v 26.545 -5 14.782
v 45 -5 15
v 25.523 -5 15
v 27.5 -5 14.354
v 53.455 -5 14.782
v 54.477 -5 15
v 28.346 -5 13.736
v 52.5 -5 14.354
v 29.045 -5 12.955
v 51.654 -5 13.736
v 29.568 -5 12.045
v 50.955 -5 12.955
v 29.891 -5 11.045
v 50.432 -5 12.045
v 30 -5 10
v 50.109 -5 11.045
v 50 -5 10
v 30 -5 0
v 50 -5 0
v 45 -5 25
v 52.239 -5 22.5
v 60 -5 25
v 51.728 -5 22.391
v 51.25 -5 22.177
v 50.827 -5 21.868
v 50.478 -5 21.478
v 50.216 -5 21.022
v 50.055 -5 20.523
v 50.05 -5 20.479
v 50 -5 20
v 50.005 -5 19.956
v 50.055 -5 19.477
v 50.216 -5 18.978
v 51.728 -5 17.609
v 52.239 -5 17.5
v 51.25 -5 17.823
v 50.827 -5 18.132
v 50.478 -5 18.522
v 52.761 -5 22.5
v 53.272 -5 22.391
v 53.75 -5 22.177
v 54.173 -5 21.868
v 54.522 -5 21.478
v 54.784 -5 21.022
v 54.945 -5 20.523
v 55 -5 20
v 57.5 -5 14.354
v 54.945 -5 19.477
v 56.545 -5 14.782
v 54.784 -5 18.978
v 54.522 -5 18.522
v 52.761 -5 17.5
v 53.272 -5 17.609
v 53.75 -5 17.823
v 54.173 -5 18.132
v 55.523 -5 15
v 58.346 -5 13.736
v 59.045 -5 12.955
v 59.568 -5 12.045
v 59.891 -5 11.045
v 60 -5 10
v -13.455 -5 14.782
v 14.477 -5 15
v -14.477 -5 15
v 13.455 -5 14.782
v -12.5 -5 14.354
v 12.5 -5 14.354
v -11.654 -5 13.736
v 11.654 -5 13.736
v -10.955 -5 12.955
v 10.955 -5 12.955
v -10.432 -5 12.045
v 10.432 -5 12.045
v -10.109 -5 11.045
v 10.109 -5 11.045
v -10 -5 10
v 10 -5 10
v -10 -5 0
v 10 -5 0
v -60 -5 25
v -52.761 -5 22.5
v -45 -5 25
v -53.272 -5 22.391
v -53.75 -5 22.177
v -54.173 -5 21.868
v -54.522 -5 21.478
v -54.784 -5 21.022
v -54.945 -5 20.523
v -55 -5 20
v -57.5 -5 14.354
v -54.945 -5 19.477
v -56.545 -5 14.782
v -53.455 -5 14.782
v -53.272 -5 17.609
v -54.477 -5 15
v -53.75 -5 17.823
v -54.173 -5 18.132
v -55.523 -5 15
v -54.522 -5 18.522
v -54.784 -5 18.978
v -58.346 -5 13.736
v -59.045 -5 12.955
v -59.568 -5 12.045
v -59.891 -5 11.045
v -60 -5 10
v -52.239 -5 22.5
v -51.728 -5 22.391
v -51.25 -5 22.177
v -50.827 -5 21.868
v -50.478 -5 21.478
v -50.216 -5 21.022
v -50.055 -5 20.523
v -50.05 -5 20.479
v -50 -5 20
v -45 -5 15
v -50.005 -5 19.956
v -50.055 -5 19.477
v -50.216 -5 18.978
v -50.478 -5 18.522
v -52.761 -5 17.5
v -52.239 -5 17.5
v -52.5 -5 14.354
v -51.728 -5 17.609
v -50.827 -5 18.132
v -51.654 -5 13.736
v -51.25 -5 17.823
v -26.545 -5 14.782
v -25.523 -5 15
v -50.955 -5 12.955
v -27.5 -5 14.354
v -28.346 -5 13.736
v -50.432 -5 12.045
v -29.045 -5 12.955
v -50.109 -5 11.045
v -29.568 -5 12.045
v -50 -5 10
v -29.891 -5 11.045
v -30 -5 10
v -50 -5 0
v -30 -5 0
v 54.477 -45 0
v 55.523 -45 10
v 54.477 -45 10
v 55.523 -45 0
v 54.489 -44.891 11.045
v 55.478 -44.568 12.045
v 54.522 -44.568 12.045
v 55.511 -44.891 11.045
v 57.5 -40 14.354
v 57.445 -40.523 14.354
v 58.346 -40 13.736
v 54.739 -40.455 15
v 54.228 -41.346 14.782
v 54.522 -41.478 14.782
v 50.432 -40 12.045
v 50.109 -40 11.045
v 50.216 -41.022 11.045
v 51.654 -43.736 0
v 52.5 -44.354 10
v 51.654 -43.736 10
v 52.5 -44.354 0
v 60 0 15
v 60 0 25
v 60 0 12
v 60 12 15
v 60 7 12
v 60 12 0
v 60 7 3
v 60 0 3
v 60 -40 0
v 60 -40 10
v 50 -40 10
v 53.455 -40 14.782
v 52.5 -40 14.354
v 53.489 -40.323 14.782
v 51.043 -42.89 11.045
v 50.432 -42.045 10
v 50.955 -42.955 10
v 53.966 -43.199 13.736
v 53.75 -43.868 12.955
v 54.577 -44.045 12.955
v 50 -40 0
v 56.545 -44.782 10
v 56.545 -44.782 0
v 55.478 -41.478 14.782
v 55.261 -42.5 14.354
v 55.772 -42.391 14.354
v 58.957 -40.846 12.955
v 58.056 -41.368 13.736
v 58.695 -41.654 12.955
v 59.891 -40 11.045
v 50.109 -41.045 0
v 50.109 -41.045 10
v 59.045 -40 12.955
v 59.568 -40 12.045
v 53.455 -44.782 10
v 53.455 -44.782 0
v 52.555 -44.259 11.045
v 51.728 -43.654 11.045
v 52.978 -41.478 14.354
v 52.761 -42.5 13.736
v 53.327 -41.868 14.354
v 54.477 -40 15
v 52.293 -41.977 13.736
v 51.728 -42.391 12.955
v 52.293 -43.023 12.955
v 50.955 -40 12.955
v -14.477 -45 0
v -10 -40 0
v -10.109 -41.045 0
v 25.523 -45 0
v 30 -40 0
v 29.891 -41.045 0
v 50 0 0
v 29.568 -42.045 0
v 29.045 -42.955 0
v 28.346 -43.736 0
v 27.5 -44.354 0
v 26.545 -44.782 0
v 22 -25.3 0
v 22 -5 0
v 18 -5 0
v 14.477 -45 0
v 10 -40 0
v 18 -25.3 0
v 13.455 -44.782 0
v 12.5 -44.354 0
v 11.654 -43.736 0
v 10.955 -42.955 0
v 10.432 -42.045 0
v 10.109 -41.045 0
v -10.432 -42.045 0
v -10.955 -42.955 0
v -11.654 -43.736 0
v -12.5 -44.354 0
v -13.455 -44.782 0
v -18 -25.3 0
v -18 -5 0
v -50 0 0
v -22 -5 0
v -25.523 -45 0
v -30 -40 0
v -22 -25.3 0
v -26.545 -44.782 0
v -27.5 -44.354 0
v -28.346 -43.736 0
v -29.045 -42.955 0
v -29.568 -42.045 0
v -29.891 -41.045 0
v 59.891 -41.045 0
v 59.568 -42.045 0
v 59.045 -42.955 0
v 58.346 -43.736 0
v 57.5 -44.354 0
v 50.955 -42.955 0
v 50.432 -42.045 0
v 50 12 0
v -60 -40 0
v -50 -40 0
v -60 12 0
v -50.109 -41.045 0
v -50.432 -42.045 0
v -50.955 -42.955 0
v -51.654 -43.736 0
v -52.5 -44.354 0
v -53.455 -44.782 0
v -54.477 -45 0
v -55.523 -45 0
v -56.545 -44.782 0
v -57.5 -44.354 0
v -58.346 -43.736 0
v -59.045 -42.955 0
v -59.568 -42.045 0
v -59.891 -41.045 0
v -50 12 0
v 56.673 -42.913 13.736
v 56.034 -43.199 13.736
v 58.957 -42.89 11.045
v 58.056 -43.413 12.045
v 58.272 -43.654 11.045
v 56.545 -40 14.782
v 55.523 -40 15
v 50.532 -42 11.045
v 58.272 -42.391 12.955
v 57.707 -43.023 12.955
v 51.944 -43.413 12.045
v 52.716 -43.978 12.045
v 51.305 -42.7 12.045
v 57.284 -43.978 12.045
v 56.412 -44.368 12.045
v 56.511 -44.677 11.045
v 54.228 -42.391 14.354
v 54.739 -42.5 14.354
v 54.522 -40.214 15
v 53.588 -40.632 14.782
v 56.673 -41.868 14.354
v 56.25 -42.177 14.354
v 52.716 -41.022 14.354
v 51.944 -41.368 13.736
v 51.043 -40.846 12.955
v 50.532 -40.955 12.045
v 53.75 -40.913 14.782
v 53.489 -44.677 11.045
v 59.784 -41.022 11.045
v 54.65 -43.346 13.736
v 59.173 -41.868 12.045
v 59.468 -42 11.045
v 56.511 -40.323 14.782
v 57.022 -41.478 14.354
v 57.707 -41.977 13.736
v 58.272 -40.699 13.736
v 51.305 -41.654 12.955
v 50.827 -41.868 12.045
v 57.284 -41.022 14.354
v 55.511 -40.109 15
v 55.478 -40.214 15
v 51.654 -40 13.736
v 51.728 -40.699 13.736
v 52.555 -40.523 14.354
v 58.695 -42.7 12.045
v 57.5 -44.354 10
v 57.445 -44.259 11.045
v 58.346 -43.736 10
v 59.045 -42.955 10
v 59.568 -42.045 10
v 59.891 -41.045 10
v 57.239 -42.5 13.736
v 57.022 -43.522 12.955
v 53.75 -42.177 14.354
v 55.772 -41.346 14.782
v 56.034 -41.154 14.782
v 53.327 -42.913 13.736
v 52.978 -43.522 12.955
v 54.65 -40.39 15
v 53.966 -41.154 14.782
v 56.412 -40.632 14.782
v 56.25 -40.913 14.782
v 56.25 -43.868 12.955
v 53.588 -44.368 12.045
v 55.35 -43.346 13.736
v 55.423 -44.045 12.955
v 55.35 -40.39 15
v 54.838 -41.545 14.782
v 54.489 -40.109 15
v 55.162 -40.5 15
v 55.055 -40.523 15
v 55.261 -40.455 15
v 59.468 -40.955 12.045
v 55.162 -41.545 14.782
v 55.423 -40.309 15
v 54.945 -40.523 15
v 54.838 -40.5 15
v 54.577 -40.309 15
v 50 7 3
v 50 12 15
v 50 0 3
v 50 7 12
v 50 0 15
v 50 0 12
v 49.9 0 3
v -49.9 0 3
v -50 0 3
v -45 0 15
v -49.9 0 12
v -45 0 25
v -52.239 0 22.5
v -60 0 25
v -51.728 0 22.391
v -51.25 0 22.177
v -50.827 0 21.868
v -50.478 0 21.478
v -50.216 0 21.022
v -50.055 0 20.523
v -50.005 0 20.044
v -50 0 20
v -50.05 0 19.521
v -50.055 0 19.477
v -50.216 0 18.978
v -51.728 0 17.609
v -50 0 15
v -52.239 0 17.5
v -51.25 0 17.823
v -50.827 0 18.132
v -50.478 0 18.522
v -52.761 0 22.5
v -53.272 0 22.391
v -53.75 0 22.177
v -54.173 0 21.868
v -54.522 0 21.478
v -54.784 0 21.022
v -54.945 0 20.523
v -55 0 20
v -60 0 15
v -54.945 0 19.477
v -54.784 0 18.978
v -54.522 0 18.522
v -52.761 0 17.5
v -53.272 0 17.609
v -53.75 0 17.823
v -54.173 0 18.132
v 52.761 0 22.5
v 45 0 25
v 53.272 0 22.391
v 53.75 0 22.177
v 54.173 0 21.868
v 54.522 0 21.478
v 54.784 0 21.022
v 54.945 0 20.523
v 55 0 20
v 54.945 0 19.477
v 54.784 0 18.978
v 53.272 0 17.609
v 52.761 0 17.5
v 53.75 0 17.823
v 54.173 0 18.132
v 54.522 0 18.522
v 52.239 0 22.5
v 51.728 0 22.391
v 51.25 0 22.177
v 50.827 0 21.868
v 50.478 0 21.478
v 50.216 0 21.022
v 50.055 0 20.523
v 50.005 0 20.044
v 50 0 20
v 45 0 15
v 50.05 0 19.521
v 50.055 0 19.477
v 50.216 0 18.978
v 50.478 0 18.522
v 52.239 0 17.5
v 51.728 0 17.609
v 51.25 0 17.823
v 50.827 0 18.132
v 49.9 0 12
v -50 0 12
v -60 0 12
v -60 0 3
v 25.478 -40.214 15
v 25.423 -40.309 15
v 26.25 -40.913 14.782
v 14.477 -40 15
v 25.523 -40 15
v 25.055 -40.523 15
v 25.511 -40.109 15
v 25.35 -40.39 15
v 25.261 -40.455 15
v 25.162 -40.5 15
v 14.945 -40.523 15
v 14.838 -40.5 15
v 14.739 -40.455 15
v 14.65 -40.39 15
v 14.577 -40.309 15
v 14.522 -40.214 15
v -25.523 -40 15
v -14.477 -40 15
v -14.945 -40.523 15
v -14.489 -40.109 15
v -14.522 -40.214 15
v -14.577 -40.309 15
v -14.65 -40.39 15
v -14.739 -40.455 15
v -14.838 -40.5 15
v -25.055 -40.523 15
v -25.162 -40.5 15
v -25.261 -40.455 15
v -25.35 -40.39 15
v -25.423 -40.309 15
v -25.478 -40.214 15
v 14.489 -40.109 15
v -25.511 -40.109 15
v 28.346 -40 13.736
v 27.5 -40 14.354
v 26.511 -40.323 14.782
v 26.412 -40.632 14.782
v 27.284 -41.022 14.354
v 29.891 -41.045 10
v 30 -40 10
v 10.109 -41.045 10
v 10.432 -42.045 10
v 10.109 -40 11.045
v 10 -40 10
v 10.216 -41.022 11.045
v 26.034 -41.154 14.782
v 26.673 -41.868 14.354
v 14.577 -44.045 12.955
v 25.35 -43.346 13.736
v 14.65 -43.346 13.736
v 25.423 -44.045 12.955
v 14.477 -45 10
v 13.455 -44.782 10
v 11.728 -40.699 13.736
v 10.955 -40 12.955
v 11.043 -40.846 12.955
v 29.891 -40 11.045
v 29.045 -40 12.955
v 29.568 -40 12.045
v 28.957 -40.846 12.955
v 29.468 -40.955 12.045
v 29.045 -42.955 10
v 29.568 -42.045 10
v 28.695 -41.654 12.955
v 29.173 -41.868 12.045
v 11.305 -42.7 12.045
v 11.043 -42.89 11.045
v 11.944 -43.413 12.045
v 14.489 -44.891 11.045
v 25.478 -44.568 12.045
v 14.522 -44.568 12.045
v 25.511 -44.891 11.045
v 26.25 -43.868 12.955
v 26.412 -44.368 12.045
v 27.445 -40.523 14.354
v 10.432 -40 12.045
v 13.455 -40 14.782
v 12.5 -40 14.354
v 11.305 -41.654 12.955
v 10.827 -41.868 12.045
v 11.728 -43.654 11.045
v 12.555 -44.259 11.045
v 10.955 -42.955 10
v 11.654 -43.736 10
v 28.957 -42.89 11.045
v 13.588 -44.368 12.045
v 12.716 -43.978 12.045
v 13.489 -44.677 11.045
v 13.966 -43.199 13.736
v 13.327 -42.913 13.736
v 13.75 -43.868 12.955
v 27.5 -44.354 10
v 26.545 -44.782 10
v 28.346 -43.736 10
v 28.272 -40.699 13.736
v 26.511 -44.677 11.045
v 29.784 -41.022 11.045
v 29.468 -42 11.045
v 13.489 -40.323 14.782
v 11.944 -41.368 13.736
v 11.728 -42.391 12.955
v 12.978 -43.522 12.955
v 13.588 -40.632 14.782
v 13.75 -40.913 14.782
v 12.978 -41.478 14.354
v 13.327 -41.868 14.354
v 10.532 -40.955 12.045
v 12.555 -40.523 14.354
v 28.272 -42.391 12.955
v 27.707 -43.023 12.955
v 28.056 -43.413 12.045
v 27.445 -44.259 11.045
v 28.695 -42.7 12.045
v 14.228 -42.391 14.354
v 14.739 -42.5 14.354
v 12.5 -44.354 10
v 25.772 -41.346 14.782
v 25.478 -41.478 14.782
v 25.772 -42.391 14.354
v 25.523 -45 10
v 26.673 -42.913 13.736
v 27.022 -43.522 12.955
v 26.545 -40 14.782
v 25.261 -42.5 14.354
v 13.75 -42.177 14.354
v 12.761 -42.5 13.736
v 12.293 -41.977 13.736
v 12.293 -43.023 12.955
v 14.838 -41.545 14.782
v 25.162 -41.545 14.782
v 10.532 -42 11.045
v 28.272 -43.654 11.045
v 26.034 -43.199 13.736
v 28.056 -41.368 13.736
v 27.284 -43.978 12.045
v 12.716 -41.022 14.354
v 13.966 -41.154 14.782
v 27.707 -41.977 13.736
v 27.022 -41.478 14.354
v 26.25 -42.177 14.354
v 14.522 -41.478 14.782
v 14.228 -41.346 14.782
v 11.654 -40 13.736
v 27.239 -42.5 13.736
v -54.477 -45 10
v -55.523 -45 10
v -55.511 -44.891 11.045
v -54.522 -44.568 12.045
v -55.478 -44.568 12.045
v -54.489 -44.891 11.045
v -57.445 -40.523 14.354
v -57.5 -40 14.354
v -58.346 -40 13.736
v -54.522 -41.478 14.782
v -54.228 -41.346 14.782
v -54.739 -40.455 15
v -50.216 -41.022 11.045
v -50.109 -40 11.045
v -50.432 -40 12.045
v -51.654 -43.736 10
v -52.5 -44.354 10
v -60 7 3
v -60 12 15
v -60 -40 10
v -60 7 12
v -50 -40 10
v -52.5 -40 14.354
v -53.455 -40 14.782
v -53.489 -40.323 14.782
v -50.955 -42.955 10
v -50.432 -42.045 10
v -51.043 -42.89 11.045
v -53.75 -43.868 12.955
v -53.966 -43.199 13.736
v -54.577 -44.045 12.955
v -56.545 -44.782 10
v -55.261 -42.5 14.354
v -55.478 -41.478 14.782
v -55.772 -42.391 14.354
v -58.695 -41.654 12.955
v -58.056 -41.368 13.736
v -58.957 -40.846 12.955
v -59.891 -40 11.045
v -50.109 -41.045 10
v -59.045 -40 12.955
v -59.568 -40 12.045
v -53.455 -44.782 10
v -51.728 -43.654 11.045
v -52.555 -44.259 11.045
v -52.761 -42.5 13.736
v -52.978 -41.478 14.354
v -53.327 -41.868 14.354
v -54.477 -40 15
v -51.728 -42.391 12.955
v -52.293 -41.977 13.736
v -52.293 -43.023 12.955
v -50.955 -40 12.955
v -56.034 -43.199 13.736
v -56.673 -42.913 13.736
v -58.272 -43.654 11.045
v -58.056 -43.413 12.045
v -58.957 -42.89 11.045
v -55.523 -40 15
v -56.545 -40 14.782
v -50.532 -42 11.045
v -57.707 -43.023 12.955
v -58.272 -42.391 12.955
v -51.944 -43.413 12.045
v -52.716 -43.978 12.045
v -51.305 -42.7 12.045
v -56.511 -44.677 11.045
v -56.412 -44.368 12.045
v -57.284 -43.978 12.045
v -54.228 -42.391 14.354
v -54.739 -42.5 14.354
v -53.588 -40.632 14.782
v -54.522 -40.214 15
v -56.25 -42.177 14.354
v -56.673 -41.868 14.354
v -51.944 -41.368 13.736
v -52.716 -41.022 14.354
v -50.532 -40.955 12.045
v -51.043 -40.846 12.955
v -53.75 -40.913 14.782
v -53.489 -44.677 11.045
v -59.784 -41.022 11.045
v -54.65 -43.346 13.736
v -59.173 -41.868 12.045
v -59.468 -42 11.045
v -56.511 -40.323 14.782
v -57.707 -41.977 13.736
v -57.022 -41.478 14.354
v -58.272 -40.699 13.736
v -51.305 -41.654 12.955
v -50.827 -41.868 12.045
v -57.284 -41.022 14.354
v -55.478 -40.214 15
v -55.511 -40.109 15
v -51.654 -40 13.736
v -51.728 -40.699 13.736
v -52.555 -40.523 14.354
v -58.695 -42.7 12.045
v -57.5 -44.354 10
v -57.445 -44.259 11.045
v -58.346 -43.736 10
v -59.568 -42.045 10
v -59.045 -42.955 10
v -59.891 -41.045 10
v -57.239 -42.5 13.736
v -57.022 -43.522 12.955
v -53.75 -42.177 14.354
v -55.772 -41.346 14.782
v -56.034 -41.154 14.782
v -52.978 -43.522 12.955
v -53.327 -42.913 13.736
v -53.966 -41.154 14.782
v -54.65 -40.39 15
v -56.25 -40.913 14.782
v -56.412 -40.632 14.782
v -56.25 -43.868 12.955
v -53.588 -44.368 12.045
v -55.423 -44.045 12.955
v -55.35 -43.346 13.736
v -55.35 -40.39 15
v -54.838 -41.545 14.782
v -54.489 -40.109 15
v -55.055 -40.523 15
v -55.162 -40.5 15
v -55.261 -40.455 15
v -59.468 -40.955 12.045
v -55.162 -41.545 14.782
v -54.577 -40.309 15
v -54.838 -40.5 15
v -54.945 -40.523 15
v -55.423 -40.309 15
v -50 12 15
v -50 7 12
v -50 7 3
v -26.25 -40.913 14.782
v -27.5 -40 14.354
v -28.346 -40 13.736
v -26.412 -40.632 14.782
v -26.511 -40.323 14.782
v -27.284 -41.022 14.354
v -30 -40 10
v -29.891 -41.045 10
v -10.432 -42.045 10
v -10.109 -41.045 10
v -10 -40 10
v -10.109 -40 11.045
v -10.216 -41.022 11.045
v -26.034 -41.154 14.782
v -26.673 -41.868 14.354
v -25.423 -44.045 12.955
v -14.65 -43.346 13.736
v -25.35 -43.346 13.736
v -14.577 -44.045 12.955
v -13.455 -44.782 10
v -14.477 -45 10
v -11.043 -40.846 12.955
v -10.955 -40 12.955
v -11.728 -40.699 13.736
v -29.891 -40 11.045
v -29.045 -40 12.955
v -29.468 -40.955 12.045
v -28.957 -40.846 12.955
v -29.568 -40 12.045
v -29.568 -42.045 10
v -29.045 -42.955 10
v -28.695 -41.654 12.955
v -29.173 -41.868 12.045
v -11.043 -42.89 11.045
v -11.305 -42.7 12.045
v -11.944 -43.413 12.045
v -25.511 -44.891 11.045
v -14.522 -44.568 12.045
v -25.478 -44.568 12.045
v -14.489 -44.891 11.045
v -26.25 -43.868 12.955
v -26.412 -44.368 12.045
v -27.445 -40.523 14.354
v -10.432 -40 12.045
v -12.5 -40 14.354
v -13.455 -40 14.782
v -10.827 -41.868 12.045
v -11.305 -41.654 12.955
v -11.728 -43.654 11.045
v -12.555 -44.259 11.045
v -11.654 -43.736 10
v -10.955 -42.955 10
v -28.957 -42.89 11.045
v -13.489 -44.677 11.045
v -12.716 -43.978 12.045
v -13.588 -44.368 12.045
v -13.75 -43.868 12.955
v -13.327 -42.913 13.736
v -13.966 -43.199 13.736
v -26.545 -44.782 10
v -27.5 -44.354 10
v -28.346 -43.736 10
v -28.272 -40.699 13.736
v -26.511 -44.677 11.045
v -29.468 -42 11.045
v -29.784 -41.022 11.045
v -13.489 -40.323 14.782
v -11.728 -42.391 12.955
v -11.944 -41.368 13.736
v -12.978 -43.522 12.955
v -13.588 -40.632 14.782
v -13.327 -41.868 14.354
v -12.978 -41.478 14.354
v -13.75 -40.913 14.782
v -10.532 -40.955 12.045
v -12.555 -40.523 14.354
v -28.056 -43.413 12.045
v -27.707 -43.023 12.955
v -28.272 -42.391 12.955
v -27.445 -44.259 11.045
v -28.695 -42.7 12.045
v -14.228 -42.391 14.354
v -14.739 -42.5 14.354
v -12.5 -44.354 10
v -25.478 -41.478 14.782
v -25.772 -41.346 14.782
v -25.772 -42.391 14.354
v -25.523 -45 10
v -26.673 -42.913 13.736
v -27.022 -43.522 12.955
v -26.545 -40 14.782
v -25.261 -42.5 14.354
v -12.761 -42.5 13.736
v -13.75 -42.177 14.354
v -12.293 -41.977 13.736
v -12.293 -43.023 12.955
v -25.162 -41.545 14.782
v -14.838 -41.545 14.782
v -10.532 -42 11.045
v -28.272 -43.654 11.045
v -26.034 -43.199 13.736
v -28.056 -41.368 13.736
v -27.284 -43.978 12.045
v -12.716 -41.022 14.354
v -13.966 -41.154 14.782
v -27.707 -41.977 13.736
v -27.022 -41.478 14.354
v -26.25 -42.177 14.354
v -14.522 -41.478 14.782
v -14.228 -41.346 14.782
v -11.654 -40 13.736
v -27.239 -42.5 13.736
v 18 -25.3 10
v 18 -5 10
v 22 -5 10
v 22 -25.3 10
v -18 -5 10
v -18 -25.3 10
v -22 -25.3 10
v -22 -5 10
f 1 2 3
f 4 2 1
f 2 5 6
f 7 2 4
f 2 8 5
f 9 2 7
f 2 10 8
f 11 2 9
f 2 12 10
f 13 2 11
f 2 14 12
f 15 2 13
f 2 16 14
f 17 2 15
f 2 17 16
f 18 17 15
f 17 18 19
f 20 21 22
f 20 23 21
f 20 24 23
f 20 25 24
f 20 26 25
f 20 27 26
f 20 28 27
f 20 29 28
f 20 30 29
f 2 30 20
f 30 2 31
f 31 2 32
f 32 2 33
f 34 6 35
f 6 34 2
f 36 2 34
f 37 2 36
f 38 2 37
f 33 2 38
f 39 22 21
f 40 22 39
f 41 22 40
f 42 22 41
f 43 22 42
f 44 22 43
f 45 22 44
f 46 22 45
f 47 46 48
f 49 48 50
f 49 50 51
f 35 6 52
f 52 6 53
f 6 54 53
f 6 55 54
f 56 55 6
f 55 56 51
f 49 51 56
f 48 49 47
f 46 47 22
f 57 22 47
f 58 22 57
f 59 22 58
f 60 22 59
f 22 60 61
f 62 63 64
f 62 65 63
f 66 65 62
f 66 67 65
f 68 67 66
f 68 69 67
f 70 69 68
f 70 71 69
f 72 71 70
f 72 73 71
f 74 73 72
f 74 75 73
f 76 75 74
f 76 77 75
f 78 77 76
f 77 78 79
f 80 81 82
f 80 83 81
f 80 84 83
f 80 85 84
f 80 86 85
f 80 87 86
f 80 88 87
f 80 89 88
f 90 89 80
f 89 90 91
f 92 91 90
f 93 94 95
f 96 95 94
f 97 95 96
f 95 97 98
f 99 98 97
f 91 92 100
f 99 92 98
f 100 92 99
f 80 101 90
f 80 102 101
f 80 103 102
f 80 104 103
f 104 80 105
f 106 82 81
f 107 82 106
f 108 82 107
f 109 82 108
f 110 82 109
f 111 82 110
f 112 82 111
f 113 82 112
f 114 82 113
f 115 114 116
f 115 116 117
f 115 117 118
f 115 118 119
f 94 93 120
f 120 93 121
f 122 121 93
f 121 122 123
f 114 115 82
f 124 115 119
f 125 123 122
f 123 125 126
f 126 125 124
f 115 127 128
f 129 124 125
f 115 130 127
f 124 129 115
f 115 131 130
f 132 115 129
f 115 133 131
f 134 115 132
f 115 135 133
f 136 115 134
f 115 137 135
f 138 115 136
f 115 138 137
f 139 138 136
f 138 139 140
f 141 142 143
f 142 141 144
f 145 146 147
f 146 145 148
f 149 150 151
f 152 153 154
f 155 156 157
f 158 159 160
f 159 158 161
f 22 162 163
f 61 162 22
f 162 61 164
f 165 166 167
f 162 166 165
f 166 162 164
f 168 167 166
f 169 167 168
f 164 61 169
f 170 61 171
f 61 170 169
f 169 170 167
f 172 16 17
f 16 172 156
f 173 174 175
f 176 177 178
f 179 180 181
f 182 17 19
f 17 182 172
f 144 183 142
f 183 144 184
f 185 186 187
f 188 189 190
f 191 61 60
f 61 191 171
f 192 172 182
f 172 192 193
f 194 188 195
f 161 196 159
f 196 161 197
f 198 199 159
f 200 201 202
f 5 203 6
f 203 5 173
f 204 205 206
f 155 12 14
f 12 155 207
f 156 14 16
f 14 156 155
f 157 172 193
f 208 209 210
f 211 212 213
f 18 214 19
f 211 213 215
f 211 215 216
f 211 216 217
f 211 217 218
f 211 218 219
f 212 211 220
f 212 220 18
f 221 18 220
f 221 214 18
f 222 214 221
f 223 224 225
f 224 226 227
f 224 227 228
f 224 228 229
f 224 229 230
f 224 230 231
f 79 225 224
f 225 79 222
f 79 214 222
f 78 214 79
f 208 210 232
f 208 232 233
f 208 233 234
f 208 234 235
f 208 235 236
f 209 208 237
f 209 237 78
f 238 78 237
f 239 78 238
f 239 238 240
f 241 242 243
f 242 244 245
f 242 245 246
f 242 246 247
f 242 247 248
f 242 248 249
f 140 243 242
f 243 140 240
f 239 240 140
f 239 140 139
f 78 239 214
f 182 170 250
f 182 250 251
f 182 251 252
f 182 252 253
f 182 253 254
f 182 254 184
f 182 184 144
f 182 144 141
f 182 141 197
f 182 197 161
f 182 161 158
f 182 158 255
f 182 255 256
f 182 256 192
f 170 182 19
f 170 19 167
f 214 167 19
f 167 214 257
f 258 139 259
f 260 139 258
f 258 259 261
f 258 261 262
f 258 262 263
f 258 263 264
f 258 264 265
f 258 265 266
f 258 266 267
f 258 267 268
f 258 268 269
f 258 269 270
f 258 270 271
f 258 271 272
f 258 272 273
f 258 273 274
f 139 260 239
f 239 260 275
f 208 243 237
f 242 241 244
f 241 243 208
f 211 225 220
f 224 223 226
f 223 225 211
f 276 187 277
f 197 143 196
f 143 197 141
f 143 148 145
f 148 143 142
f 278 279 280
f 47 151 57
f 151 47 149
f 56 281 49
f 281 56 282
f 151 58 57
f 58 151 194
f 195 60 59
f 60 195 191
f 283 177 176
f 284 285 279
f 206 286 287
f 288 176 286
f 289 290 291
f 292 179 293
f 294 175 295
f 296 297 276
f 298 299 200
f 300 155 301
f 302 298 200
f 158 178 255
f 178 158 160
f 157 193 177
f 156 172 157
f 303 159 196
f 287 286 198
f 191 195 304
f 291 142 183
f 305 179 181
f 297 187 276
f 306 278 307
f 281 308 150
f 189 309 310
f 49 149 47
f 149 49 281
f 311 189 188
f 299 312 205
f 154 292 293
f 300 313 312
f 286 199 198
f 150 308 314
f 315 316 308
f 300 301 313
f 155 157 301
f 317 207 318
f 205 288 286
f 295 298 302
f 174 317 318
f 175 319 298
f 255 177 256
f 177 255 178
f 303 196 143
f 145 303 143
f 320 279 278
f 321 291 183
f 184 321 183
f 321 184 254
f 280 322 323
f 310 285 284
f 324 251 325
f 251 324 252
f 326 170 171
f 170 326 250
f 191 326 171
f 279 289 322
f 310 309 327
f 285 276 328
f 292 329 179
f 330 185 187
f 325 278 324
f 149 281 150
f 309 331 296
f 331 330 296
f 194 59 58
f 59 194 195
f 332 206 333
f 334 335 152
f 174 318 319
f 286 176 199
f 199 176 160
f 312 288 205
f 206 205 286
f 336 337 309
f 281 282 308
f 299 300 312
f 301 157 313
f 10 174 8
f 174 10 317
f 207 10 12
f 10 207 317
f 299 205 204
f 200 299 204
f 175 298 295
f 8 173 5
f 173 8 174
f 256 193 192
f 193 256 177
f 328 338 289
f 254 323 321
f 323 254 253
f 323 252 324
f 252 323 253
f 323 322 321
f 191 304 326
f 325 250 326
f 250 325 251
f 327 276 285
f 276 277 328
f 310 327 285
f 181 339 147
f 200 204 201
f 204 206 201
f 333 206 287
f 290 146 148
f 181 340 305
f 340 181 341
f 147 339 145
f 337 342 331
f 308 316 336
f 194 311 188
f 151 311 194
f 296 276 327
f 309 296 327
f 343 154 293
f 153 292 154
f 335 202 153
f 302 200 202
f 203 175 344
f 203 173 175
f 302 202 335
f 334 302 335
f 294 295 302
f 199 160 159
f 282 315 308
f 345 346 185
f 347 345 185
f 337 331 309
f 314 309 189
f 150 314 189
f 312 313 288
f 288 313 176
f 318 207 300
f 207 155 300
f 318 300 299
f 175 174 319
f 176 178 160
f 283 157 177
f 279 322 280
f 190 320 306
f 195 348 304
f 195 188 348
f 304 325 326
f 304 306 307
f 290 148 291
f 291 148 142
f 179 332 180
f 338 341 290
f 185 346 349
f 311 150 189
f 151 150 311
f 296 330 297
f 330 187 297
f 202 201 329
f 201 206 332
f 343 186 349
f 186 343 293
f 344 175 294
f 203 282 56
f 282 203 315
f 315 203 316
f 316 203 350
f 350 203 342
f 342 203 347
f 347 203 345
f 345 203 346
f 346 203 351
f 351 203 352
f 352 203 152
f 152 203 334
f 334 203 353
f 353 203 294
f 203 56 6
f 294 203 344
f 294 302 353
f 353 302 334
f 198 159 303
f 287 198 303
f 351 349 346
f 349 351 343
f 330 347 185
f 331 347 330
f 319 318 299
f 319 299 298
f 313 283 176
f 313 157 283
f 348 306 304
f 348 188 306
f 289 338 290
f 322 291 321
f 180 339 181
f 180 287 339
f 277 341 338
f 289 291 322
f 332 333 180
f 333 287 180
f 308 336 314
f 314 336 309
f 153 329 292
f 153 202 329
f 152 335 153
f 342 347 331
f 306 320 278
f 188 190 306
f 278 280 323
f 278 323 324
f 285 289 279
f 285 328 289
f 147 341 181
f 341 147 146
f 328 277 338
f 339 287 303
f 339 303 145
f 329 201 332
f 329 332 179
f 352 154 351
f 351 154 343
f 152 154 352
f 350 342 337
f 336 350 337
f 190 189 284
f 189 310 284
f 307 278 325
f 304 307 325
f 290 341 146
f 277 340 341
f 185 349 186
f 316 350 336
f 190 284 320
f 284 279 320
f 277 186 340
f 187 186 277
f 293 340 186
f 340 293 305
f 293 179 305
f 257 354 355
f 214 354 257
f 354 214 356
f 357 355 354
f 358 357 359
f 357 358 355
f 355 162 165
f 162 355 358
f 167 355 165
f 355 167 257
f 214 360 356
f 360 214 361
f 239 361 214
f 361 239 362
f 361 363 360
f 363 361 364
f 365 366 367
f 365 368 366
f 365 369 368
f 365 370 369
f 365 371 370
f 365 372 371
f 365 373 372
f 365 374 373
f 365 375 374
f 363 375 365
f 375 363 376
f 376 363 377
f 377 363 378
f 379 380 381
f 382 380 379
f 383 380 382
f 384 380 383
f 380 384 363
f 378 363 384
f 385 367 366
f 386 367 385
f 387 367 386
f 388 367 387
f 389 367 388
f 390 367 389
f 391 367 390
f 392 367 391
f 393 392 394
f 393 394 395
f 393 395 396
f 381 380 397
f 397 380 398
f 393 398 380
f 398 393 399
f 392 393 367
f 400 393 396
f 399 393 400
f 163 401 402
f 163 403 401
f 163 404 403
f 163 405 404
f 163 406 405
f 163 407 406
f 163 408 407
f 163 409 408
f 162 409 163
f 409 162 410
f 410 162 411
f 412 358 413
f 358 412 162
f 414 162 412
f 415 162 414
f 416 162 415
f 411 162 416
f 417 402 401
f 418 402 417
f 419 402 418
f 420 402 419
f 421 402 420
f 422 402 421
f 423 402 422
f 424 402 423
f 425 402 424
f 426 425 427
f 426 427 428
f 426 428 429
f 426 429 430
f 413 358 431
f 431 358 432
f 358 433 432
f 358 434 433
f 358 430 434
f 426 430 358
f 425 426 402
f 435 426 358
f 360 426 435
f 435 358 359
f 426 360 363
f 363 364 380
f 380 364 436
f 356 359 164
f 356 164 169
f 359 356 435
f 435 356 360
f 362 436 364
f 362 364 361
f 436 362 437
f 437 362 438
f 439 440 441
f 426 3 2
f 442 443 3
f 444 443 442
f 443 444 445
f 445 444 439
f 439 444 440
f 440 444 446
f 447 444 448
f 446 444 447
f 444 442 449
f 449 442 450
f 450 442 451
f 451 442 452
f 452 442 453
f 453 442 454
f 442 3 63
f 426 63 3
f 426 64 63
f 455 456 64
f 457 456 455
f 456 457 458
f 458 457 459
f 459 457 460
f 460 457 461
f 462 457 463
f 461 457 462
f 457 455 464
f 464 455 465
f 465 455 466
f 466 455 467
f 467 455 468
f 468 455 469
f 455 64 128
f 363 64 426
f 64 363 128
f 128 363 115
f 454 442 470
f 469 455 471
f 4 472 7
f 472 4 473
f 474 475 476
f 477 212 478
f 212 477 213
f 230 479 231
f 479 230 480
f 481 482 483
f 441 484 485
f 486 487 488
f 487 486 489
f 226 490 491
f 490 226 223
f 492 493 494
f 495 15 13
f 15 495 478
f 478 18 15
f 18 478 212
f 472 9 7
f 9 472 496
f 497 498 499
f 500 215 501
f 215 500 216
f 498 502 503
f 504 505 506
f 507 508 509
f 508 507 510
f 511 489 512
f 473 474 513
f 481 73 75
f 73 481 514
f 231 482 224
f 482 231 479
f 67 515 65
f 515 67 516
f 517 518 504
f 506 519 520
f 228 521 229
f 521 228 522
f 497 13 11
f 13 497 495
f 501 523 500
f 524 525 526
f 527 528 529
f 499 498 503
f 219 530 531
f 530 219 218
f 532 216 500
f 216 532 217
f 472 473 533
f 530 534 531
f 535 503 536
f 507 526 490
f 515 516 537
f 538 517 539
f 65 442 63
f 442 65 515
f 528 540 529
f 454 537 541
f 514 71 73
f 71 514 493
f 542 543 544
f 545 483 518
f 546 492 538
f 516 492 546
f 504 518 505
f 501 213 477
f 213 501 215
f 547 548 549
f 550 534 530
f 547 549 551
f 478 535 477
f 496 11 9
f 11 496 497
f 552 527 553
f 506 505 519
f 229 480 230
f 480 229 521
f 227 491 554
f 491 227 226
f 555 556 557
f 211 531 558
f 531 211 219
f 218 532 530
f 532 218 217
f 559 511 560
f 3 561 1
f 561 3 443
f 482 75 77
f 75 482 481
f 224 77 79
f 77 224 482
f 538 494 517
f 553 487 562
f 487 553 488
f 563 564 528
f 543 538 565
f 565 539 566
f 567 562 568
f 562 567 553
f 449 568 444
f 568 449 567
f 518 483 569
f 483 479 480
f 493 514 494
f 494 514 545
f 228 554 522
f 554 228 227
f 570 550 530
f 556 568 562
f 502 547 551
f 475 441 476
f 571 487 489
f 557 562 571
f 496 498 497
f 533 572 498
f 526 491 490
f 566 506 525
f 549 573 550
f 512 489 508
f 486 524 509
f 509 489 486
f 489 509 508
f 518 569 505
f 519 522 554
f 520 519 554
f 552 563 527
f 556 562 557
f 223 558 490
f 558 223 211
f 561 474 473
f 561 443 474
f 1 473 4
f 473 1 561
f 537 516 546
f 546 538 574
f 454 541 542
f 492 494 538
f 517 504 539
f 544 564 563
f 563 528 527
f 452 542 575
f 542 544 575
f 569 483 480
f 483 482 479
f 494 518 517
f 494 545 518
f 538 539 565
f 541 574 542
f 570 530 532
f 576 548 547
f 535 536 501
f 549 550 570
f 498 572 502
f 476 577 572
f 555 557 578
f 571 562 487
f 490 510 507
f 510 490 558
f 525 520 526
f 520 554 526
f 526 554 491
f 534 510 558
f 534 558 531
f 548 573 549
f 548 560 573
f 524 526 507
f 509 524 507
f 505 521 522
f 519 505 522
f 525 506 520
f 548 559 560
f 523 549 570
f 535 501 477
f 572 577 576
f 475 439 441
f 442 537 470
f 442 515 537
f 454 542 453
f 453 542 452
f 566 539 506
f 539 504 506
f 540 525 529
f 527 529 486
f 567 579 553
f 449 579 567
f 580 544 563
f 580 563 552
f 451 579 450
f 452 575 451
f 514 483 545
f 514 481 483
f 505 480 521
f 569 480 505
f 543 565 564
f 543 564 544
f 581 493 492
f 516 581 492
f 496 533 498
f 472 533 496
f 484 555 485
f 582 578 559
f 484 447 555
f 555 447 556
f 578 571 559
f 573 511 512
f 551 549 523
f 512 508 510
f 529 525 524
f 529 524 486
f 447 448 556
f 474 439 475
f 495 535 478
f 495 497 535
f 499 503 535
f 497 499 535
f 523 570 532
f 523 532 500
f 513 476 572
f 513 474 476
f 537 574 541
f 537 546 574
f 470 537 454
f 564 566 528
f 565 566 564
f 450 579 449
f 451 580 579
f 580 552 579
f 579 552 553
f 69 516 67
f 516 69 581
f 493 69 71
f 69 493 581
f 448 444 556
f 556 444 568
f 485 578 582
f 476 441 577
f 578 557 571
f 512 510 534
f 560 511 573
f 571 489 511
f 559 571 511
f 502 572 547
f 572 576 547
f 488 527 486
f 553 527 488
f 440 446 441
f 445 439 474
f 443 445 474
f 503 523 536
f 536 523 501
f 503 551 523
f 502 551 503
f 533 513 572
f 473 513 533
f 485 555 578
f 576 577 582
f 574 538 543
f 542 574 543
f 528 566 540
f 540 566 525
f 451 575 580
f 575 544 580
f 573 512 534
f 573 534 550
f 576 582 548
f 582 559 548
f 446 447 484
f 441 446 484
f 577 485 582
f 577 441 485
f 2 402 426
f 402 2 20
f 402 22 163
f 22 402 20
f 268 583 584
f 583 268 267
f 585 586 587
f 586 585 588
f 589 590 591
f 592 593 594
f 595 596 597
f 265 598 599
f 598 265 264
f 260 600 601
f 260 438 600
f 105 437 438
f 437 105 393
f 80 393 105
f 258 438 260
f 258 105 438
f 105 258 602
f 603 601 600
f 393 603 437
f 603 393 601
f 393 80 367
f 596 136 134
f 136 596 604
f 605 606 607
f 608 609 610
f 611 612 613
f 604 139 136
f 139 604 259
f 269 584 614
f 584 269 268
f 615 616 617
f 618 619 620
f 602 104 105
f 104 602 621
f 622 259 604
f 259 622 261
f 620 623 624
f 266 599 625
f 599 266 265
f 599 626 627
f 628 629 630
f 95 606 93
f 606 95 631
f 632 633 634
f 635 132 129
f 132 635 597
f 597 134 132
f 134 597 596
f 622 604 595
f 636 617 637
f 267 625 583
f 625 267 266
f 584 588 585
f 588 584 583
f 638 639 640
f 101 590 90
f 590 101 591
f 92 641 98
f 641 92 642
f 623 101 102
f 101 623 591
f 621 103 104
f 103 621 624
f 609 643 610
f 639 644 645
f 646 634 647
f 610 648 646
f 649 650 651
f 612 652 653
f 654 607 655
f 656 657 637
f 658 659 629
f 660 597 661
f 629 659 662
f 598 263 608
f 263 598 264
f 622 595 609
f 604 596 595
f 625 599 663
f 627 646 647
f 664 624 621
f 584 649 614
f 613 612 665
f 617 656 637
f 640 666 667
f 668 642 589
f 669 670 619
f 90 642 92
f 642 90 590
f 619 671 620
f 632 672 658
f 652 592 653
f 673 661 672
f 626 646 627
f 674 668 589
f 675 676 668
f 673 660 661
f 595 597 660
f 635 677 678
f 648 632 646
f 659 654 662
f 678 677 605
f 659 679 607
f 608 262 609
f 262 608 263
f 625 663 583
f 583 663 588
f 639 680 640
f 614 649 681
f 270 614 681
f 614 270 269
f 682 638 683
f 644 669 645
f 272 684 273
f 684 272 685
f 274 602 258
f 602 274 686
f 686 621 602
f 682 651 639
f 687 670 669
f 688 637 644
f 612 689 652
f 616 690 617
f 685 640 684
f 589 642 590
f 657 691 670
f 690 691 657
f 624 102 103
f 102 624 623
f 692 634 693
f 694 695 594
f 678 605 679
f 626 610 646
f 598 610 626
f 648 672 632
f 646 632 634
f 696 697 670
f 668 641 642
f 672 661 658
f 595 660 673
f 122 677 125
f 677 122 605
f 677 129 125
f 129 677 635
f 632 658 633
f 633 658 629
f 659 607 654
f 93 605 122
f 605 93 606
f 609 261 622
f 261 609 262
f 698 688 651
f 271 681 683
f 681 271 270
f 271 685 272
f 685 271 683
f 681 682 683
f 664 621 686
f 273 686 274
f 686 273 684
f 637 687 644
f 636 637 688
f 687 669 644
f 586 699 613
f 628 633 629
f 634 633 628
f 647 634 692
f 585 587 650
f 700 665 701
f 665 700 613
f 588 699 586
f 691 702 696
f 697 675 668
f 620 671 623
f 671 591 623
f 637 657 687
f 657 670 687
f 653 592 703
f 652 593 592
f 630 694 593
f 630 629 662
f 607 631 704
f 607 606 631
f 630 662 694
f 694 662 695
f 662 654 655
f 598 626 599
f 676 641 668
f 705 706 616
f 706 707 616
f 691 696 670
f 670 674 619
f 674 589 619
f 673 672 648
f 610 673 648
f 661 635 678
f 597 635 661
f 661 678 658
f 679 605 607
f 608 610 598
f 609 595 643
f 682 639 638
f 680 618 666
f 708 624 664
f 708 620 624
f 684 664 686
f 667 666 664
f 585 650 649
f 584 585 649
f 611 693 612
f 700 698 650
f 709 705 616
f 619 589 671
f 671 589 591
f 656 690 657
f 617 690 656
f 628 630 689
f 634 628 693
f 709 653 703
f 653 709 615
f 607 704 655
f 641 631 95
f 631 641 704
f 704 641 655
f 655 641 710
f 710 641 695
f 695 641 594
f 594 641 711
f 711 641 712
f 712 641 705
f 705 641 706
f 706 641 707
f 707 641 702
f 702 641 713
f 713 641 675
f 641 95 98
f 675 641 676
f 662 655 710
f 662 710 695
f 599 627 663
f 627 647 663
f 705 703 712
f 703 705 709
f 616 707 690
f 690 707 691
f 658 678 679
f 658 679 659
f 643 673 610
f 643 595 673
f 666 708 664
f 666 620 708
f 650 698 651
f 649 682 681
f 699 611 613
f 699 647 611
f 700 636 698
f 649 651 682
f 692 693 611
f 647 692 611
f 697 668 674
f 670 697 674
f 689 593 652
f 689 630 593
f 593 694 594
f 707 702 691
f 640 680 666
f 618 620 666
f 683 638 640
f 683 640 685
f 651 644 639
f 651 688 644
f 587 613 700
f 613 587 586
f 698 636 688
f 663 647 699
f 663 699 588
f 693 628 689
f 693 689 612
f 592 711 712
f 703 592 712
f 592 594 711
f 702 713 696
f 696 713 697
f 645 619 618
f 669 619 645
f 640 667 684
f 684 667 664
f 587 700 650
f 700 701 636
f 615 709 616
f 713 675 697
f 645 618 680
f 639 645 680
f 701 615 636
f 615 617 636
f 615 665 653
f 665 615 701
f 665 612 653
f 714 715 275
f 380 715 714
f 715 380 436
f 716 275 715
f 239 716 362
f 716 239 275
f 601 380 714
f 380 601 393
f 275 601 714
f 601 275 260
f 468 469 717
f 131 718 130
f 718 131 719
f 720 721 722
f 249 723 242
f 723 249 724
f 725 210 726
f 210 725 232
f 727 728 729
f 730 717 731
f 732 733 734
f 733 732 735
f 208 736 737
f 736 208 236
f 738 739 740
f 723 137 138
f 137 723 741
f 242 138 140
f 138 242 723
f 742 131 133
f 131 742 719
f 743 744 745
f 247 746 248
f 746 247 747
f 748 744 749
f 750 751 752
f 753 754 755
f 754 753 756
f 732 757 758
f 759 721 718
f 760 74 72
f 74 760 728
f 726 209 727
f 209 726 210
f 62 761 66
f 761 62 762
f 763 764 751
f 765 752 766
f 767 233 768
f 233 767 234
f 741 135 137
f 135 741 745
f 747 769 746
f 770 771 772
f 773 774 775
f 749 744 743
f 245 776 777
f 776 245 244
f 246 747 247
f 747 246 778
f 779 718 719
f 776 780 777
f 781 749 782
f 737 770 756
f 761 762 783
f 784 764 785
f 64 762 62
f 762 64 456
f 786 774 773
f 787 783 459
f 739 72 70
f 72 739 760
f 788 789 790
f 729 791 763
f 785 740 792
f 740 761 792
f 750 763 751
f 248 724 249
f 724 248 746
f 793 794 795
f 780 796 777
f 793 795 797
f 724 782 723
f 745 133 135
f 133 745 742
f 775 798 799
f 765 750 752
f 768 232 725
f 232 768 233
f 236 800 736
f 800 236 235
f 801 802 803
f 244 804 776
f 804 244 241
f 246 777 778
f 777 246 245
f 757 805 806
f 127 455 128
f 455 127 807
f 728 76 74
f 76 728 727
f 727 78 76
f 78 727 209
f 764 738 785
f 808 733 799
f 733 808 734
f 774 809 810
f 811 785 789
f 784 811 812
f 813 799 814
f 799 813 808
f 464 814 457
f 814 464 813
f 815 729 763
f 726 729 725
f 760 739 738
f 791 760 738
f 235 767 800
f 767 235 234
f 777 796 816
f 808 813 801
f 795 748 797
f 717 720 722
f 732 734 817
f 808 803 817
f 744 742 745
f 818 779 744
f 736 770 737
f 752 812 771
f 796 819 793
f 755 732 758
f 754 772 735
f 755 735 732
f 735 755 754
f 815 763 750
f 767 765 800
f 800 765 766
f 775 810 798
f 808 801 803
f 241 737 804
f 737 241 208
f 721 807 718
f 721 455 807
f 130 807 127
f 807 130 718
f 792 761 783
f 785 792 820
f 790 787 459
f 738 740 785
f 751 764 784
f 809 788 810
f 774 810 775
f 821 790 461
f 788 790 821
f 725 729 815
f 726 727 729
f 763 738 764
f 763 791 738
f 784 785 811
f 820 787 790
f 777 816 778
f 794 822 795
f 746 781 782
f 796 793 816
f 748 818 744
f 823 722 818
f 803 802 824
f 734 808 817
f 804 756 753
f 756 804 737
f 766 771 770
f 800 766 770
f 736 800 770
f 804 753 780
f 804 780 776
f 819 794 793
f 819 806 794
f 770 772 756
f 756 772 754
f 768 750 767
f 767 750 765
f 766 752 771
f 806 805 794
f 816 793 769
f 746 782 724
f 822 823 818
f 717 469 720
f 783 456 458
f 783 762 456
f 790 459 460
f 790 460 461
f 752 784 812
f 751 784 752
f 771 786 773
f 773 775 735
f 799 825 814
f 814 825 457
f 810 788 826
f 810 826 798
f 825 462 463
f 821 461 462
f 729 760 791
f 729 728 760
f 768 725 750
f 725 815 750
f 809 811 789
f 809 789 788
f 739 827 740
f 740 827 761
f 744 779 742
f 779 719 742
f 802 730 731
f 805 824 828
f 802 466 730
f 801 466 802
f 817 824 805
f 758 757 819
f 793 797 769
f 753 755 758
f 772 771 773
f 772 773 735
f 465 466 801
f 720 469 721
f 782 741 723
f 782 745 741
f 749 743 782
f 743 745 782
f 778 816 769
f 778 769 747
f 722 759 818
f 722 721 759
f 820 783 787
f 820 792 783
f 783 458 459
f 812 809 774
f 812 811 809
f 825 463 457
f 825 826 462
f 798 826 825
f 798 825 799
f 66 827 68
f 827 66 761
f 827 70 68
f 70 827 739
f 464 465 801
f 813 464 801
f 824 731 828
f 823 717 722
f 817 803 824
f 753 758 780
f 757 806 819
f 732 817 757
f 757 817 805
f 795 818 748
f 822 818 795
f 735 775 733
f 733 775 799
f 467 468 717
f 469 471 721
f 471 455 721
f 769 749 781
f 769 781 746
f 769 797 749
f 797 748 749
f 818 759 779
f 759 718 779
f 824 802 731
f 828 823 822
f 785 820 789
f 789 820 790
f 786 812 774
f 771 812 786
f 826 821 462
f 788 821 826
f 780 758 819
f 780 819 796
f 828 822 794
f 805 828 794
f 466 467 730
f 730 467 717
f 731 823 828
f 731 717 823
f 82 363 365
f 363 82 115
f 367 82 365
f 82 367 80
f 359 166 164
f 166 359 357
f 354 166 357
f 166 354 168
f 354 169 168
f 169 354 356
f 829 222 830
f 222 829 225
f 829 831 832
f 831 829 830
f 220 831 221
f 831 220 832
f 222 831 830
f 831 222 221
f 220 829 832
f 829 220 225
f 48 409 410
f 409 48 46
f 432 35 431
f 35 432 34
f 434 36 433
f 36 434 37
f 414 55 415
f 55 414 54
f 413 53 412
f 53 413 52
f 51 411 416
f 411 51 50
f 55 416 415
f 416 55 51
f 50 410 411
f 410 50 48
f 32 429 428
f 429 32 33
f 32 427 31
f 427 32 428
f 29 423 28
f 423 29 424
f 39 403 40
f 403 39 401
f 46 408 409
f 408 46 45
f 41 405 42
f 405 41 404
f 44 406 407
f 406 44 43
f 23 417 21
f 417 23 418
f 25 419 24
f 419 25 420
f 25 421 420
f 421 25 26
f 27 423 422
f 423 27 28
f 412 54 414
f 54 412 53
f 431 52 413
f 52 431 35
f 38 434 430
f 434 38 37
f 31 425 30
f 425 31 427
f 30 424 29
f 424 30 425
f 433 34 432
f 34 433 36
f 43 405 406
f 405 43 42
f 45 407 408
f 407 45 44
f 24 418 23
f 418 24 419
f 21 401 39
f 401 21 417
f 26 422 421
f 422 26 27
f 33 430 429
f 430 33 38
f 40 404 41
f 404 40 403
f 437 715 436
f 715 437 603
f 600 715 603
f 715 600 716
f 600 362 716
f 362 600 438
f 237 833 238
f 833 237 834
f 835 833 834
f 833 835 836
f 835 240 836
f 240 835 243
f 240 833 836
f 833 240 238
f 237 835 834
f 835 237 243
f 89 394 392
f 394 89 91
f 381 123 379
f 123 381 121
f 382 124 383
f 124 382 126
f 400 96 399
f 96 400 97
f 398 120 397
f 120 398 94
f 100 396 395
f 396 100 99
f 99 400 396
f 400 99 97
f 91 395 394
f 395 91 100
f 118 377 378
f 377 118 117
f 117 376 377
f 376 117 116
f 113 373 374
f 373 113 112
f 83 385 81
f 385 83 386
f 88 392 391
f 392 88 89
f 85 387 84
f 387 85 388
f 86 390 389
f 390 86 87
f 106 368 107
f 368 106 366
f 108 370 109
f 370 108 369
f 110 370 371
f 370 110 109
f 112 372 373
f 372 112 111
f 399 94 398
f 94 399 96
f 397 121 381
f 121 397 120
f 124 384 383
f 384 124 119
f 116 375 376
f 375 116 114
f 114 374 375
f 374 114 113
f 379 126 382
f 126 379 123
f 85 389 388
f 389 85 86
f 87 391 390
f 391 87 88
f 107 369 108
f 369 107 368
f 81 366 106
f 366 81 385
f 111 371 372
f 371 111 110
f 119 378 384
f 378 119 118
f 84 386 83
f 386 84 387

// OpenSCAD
include <../../lib/relativity.scad/relativity.scad> // https://github.com/davidson16807/relativity.scad

toothpaste_width = 20;
bar_diameter = 10;
bar_length = 40;
height = 15;
thickness = 5;
to_wall_distance = 12;
$fn=30;

width = (toothpaste_width + bar_diameter * 2) * 3;

module middle_bar() {
  hulled() mirrored(x) {
    align(-y+z) rod(d=bar_diameter, h=bar_length-bar_diameter, orientation=y, anchor=x+y+z)
      align(x-y) ball(d=bar_diameter);
    align(-y-z) box([bar_diameter*2, bar_length-bar_diameter, height-bar_diameter], anchor=y-z)
      align(x-y) rod(d=bar_diameter, h=height-bar_diameter, anchor=x+y);
  }
  align(-y-z) box([4, 20.3, height-5], anchor=y-z, $class="hole");
}

module side_bar() {
  hulled() {
    align(x-y+z) rod(d=bar_diameter, h=bar_length-bar_diameter, orientation=y, anchor=x+y+z)
      align(-y) ball(d=bar_diameter);
    align(x-y-z) box([bar_diameter, bar_length-bar_diameter, height-bar_diameter], anchor=x+y-z)
      align(-y) rod(d=bar_diameter, h=height-bar_diameter);
  };  
}

module connector() {
  box([10, to_wall_distance, $parent_size.z], anchor=x-y);
  box([10.1, 7, $parent_size.z-6], anchor=x-y, $class="hole");
}

module hook() {
  align(z) box([15, thickness, 10], anchor=-z)
    rod(d=5, h=thickness+1, orientation=y, $class="hole");
}

differed("hole","not(hole)") {
  box([width, thickness, height], anchor=y-z) 
  mirrored(x) 
  {
    side_bar();
    align(x+y) connector();
    translated(toothpaste_width*x) middle_bar();
    align(x) translated(-7.5*x) hook();
  }
}

/*
translated(30*y) 
box([70, 20, 3.5], anchor=-z)
align(y-x) box([10, thickness+to_wall_distance, 3.5], anchor=-x-y);
*/
